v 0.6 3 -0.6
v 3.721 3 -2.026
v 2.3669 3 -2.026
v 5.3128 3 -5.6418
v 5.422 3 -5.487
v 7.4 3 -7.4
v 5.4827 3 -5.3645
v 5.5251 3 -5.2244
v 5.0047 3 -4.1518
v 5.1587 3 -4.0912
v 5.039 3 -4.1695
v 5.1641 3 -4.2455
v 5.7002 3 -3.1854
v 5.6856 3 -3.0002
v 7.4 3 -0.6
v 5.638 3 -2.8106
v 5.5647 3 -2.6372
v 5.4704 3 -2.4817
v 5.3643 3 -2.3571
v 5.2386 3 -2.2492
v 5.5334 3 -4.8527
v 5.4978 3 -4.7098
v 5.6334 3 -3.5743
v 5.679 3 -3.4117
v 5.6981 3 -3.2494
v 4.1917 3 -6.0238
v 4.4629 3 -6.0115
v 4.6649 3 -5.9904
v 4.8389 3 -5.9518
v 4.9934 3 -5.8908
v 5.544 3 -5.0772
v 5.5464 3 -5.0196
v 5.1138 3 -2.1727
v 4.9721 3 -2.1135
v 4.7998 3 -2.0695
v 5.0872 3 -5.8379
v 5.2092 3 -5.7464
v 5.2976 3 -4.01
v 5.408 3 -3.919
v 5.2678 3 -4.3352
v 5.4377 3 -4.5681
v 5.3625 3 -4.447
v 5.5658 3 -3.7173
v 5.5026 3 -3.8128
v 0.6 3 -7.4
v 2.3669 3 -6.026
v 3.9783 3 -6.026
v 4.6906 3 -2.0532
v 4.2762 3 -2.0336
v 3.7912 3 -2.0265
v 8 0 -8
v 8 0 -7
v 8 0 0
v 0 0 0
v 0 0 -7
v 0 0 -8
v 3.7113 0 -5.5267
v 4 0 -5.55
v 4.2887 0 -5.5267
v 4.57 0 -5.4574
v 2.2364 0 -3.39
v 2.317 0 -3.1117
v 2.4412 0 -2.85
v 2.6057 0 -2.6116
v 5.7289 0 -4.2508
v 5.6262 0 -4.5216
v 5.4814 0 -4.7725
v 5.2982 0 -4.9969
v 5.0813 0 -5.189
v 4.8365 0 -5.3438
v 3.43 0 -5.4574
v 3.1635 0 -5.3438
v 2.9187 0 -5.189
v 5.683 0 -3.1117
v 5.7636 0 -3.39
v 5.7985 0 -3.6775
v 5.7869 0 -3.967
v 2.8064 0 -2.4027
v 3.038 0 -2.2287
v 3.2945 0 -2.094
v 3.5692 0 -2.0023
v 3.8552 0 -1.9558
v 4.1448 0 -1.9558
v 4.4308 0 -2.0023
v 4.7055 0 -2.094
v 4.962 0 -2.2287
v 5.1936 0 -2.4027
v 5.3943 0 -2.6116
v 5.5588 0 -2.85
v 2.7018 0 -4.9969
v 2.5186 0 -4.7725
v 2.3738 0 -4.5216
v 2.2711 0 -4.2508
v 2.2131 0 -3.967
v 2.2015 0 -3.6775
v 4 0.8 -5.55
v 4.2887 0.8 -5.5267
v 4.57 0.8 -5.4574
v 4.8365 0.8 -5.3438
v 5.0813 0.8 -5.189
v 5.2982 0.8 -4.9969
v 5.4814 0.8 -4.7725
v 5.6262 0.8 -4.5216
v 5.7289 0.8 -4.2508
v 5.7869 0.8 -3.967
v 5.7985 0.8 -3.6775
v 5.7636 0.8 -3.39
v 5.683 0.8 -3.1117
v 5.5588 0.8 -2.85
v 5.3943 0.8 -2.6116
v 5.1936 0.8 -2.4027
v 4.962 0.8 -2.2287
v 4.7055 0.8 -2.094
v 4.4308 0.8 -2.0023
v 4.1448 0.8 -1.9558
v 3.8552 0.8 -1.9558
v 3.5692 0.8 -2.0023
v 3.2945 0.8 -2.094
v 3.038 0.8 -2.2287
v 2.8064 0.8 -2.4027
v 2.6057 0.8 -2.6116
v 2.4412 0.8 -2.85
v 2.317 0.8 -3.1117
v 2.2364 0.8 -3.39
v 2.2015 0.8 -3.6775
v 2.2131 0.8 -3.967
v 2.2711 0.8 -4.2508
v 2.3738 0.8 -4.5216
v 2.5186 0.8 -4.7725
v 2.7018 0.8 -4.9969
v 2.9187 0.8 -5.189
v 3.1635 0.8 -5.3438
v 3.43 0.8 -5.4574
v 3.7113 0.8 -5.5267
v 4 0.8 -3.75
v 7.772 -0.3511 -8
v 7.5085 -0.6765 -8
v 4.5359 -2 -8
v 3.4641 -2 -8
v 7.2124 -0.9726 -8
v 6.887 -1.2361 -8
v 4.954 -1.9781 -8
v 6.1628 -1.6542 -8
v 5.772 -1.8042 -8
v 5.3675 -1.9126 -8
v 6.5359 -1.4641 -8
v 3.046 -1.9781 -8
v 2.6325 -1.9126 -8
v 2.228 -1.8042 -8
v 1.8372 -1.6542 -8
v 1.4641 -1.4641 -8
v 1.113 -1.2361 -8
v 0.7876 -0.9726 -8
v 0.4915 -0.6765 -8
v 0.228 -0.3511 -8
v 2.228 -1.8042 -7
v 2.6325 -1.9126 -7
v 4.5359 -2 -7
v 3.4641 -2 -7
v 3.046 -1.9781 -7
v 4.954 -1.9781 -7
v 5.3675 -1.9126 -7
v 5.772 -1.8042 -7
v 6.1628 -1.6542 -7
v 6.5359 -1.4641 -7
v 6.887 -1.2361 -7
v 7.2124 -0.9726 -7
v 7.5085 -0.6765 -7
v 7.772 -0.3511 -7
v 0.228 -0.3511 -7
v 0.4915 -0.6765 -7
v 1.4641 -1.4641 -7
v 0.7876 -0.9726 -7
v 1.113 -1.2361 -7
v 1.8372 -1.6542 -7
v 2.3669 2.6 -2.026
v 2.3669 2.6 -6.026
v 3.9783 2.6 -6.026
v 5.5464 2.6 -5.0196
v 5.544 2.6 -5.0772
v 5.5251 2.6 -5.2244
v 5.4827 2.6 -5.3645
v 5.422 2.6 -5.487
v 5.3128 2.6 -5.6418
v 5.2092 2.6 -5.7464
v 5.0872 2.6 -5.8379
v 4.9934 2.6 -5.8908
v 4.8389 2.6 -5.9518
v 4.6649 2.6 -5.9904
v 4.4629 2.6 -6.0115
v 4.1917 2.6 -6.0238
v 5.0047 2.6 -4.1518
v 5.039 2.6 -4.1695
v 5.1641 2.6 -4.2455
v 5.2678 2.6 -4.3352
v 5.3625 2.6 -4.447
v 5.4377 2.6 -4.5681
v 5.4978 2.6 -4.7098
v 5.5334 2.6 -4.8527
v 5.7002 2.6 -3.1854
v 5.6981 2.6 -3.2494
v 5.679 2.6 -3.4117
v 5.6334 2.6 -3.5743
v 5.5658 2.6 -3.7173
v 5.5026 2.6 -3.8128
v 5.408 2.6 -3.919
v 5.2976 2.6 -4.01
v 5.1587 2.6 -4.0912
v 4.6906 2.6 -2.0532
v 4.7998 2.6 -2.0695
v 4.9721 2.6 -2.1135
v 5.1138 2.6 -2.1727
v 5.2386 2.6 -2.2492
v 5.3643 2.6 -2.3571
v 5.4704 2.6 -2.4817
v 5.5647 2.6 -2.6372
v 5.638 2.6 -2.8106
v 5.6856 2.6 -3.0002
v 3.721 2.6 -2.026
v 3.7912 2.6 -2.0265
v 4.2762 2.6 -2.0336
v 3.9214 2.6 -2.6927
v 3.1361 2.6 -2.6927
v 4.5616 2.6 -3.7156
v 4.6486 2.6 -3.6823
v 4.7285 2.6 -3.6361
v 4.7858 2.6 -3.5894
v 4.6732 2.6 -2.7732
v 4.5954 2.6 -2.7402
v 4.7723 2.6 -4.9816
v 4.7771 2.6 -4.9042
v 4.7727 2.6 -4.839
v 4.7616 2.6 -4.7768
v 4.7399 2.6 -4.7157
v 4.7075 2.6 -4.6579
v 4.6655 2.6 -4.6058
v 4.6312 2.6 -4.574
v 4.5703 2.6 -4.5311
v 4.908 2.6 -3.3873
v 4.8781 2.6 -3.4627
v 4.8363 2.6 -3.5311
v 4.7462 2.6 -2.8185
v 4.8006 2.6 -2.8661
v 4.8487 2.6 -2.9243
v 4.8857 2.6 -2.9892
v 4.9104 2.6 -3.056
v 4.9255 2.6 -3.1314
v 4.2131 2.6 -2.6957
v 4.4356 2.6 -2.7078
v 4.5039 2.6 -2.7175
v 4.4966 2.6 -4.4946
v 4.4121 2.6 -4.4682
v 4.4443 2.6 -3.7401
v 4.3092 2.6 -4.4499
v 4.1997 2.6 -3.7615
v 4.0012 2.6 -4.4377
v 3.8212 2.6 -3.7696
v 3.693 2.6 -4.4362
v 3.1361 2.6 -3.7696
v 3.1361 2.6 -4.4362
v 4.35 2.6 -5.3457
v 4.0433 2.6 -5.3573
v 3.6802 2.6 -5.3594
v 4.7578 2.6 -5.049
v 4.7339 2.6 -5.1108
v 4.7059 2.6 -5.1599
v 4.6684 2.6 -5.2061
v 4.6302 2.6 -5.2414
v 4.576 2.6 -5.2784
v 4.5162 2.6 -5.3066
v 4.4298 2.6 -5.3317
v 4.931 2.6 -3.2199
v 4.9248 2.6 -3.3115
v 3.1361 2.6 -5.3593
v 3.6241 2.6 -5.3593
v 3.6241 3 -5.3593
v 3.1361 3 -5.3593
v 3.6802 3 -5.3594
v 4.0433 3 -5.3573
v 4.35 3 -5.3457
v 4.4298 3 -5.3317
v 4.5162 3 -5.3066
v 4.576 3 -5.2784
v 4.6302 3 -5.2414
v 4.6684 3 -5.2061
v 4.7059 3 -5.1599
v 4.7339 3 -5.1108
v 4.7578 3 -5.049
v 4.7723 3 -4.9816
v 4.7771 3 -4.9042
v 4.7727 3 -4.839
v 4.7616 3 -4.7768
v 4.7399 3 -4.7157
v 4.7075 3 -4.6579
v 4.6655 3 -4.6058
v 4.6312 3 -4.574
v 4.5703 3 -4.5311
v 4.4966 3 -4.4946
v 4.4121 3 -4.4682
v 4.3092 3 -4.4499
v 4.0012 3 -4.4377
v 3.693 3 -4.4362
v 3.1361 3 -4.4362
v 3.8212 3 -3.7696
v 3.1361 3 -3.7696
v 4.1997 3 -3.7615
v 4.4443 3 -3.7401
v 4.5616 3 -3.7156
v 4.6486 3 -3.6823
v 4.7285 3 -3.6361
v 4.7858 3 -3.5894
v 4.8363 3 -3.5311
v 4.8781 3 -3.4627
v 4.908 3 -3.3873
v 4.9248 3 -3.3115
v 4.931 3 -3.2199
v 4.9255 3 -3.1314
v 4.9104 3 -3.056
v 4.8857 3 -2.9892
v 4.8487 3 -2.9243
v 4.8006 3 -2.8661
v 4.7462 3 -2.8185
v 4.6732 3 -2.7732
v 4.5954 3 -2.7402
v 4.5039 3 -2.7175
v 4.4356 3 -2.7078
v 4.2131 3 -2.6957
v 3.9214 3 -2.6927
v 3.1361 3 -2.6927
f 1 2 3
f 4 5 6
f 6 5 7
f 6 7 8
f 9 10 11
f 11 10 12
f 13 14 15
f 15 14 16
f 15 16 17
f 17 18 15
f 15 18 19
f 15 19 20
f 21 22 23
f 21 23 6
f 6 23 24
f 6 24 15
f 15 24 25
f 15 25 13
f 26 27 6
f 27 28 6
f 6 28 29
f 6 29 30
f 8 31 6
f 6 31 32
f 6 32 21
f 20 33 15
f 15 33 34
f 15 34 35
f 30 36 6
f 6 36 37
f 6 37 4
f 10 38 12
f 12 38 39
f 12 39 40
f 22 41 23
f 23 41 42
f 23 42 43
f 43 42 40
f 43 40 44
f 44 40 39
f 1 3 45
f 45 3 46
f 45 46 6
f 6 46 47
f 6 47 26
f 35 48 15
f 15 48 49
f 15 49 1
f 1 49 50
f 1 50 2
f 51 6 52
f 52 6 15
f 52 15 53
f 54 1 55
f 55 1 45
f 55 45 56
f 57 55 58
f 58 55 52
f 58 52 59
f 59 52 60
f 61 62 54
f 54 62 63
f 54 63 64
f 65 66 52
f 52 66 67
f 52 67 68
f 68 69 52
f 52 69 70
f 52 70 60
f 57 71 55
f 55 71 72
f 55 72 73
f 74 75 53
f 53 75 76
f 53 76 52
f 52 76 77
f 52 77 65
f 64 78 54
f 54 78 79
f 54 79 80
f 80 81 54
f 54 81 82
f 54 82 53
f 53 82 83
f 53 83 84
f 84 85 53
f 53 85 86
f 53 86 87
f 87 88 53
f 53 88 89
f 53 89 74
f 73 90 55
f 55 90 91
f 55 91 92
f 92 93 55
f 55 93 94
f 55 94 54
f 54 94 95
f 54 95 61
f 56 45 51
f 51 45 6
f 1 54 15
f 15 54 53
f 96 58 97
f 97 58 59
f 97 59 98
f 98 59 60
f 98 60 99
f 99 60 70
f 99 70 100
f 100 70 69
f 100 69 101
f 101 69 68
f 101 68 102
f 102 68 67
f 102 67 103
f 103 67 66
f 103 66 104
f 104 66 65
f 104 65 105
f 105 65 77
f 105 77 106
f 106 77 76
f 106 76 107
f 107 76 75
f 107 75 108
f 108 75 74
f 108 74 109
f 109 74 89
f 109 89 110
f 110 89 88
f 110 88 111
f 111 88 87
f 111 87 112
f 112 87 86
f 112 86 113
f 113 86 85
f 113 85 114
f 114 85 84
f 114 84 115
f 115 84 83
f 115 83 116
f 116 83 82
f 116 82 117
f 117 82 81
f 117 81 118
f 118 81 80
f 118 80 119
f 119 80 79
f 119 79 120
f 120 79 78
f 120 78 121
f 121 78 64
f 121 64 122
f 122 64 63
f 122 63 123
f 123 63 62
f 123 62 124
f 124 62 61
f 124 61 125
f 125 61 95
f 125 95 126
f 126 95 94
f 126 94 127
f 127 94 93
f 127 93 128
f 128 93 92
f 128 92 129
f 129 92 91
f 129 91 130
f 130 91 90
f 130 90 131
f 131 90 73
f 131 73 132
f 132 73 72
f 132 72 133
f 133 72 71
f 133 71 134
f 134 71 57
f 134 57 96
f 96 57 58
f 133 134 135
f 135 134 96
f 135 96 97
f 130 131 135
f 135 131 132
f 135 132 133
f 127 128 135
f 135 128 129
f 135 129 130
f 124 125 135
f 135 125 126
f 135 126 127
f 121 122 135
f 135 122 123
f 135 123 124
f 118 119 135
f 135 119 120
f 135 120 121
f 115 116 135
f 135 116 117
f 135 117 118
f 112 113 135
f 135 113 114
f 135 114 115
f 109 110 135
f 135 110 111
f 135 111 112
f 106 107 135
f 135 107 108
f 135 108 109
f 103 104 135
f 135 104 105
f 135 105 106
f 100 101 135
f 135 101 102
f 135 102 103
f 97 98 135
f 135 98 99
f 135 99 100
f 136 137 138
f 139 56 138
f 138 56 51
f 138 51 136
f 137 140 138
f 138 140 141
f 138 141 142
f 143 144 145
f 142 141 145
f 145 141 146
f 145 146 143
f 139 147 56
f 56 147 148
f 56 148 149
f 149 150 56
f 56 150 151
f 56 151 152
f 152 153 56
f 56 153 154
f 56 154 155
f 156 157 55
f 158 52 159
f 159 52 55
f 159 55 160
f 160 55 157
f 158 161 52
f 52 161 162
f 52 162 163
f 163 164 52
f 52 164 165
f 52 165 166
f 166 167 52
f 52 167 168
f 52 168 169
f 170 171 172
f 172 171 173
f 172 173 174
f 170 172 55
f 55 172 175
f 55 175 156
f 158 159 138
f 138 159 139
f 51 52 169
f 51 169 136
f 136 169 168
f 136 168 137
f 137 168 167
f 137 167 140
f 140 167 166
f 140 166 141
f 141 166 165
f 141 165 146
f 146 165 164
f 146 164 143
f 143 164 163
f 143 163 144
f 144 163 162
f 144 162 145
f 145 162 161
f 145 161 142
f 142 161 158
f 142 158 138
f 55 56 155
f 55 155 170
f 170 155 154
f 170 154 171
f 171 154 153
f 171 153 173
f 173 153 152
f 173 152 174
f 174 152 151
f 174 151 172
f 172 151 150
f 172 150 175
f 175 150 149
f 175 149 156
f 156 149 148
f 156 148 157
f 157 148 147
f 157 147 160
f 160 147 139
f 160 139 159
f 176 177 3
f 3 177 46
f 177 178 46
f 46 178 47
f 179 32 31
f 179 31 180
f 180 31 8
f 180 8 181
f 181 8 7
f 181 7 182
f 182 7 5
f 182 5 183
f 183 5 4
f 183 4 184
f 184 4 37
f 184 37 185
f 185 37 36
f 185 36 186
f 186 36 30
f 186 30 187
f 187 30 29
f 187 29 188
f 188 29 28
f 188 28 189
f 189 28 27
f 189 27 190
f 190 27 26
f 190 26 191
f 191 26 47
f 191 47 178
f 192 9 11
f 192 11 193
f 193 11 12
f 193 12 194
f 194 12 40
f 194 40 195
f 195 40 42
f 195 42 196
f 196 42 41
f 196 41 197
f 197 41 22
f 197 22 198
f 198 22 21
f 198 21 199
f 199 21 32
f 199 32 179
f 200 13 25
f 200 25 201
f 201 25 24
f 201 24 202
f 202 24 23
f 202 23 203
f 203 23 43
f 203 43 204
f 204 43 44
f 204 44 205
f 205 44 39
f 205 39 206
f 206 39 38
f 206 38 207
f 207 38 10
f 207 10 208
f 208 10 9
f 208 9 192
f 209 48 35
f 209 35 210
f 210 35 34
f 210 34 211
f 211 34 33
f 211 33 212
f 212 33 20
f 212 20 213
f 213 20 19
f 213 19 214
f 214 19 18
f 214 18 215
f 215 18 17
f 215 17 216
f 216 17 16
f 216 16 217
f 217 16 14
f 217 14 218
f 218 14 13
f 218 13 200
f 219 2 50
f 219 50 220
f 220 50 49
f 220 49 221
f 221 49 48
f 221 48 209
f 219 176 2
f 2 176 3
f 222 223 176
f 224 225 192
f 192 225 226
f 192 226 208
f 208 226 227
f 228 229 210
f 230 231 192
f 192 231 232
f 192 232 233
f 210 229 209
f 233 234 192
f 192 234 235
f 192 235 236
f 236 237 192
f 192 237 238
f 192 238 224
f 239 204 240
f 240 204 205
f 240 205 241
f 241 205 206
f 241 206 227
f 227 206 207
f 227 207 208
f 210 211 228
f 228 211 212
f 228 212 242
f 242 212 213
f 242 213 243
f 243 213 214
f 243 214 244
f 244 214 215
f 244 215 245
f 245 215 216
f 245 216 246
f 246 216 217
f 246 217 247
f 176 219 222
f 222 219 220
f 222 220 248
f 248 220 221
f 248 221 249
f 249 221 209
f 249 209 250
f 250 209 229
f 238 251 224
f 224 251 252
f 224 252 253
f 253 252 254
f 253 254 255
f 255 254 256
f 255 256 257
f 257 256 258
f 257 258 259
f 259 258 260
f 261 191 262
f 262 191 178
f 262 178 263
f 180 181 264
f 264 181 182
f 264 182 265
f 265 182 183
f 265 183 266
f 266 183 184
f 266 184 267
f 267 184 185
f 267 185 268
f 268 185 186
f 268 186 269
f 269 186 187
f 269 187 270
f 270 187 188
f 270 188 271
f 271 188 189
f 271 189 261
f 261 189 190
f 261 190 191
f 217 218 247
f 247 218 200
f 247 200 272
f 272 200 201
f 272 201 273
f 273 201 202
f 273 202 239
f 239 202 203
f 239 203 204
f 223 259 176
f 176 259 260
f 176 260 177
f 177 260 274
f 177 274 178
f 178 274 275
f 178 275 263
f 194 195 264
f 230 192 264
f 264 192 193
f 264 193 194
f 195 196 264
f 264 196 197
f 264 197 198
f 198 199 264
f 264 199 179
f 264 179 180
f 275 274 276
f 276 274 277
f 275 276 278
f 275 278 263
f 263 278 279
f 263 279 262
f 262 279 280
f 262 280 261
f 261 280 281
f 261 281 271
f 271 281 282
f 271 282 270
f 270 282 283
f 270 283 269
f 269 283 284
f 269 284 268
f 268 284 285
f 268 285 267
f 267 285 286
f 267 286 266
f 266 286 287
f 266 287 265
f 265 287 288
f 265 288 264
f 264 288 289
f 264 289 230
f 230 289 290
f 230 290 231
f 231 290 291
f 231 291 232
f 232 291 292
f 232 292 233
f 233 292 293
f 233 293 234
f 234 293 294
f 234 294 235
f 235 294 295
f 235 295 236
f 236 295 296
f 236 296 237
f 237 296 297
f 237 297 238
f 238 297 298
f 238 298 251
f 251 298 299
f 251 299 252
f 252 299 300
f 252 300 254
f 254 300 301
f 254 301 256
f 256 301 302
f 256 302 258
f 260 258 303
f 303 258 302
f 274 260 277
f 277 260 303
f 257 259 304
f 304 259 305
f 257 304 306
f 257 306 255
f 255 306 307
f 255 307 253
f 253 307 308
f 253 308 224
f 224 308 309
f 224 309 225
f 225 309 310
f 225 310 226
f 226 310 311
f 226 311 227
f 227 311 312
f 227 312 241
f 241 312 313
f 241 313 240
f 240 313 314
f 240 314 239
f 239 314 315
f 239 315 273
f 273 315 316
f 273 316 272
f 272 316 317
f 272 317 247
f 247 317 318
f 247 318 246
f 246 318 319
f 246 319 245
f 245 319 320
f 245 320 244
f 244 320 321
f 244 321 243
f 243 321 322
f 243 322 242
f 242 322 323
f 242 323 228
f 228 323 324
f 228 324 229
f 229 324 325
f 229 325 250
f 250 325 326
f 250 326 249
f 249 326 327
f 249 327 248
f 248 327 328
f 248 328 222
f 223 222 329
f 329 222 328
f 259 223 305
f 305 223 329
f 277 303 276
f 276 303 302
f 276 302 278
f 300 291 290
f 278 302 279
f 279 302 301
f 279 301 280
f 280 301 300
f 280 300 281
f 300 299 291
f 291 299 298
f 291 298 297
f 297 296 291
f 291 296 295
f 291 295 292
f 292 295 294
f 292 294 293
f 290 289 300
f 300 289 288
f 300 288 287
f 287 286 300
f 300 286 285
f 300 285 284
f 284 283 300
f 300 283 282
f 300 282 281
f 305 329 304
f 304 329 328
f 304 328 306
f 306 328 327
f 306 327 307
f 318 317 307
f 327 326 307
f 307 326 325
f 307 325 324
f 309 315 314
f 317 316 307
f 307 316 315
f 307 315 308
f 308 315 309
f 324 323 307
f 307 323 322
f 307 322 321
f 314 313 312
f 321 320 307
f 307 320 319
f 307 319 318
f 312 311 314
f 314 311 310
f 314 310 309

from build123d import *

# Parameters (mm, degrees)
SKETCH1_W               = 8
SKETCH1_H               = 8
BOSS_EXTRUDE1_DEPTH     = 3
CUT_EXTRUDE1_DEPTH      = 12.704699911
CUT_EXTRUDE1_DEPTH_BACK = 12.704699911
CUT_EXTRUDE2_DEPTH      = 11
SKETCH4_R               = 1.8
CUT_EXTRUDE3_DEPTH      = 0.8
SKETCH5_W               = 8
SKETCH5_H               = 1
BOSS_EXTRUDE2_DEPTH     = 2
FILLET1_R               = 4
CUT_EXTRUDE4_DEPTH      = 0.4


with BuildPart() as part:
    # Sketch1 → Boss-Extrude1 (new body)
    with BuildSketch(Plane(origin=(0, 0, 0), x_dir=(1, 0, 0), z_dir=(0, 1, 0))):
        with Locations((4, 4)):
            Rectangle(SKETCH1_W, SKETCH1_H)
    extrude(amount=BOSS_EXTRUDE1_DEPTH)

    # Sketch2 → Cut-Extrude1 (cut, two sides: drawn at the far end of the back side and taken through both)
    with BuildSketch(Plane.XY.offset(-CUT_EXTRUDE1_DEPTH_BACK)):
        Polygon((0, 0), (0.6, 3), (0, 3), align=None)
        Polygon((8, 0), (7.4, 3), (8, 3), align=None)
    extrude(amount=CUT_EXTRUDE1_DEPTH + CUT_EXTRUDE1_DEPTH_BACK, mode=Mode.SUBTRACT)

    # Sketch3 → Cut-Extrude2 (cut)
    with BuildSketch(Plane(origin=(0, 0, 0), x_dir=(0, 0, -1), z_dir=(1, 0, 0))):
        Polygon((0, 0), (0.6, 3), (0, 3), align=None)
        Polygon((8, 3), (7.4, 3), (8, 0), align=None)
    extrude(amount=CUT_EXTRUDE2_DEPTH, mode=Mode.SUBTRACT)

    # Sketch4 → Cut-Extrude3 (cut)
    with BuildSketch(Plane.XZ):
        with Locations(Location((4, -3.75, 0), (0, 0, 270))):
            Circle(SKETCH4_R)
    extrude(amount=-CUT_EXTRUDE3_DEPTH, mode=Mode.SUBTRACT)

    # Sketch5 → Boss-Extrude2 (add)
    with BuildSketch(Plane.XZ):
        with Locations((4, -7.5)):
            Rectangle(SKETCH5_W, SKETCH5_H)
    extrude(amount=BOSS_EXTRUDE2_DEPTH)

    # Fillet1
    # the kernel refuses this fillet: 4 mm, written as the material it takes off along each edge
    with BuildSketch(Plane(origin=(8, -2, -16.660254038), x_dir=(0, 1, 0), z_dir=(0, 0, 1)), Plane(origin=(0, -2, 1.660254038), x_dir=(0, 1, 0), z_dir=(0, 0, -1))) as fillet1_piece_1:
        with BuildLine():
            CenterArc((4, 3.464101615), FILLET1_R, 180, 60)
            Line((0, 3.464101615), (-0.08, 3.464101615))
            Line((-0.08, 3.464101615), (-0.08, 0))
            Line((-0.08, 0), (0, -0.08))
            ThreePointArc((0, -0.08), (1, -0.08), (1.96, -0.069282032))
            Line((1.96, -0.069282032), (2, 0))
        make_face()
    extrude(amount=18.320508076, mode=Mode.SUBTRACT)

    # Sketch6 → Cut-Extrude4 (cut)
    with BuildSketch(Plane(origin=(0, 3, 0), x_dir=(1, 0, 0), z_dir=(0, 1, 0))):
        with BuildLine():
            Line((2.366875023, 6.025988971), (3.978253228, 6.025988971))
            add(Edge.make_bspline(
                [(3.978253228, 6.025988971), (4.016981522, 6.025758539), (4.091770291, 6.025313549), (4.200234262, 6.02407341), (4.300910244, 6.020431423), (4.393955008, 6.01730407), (4.479059098, 6.009990491), (4.556891378, 6.004244483), (4.627206795, 5.996339471), (4.710040188, 5.983546816), (4.806360793, 5.963648743), (4.915152558, 5.926842691), (5.018276483, 5.880857129), (5.114182519, 5.822393524), (5.203189243, 5.754016663), (5.28597738, 5.676271174), (5.358728101, 5.58601543), (5.424238976, 5.487508268), (5.479534837, 5.380666952), (5.517612886, 5.26572697), (5.541913225, 5.144795761), (5.544858568, 5.061898711), (5.546362202, 5.019578715)],
                knots=[0, 0, 0, 0, 1.096610875, 2.117681168, 3.071055591, 3.949137991, 4.753059115, 5.489127199, 6.15892391, 6.75575099, 7.862330316, 8.938514814, 10.001276227, 11.05313779, 12.110449801, 13.174958802, 14.260456508, 15.384725817, 16.521138801, 17.654729897, 18.802709851, 20, 20, 20, 20], degree=3))
            add(Edge.make_bspline(
                [(5.546362202, 5.019578715), (5.544802721, 4.973493311), (5.541727769, 4.882623117), (5.513106772, 4.749371009), (5.467516851, 4.621879661), (5.40315043, 4.502217288), (5.324314646, 4.392405777), (5.231065087, 4.295977947), (5.12477188, 4.213520097), (5.044958184, 4.17248881), (5.004695536, 4.151790253)],
                knots=[0, 0, 0, 0, 1.023065178, 2.01725758, 3.014298905, 4.023406433, 5.026736079, 6.009055718, 6.99565244, 8, 8, 8, 8], degree=3))
            add(Edge.make_bspline(
                [(5.004695536, 4.151790253), (5.0318132, 4.142553707), (5.085431798, 4.12429068), (5.162178571, 4.090754541), (5.234086142, 4.051862796), (5.301118401, 4.008841827), (5.363784101, 3.961377137), (5.420252395, 3.907894911), (5.473763466, 3.851437899), (5.520742036, 3.789172127), (5.563264851, 3.724075672), (5.599360366, 3.65512964), (5.630616076, 3.583992364), (5.656755805, 3.509943884), (5.675388869, 3.432487562), (5.69031884, 3.352599145), (5.697956597, 3.269724954), (5.699451608, 3.213768347), (5.700208356, 3.185444099)],
                knots=[0, 0, 0, 0, 1.072651974, 2.1209089, 3.132484228, 4.131466326, 5.101889999, 6.071643115, 7.041396231, 8.011819904, 8.988565287, 9.95070344, 10.922775742, 11.897213062, 12.887138018, 13.903598663, 14.938838629, 16, 16, 16, 16], degree=3))
            add(Edge.make_bspline(
                [(5.700208356, 3.185444099), (5.698598844, 3.140212221), (5.695387249, 3.049957264), (5.671387404, 2.915316113), (5.630853991, 2.783046233), (5.575963383, 2.654005704), (5.507783193, 2.532330941), (5.427626978, 2.4212421), (5.334105775, 2.324584109), (5.230539132, 2.239414342), (5.113835126, 2.16890592), (4.984093466, 2.114745557), (4.842134035, 2.073828468), (4.742124288, 2.060236169), (4.690592972, 2.053232561)],
                knots=[0, 0, 0, 0, 0.975059807, 1.945618526, 2.93861228, 3.952760547, 4.963632603, 5.940527786, 6.897802811, 7.855787948, 8.824773195, 9.82606706, 10.879852914, 12, 12, 12, 12], degree=3))
            add(Edge.make_bspline(
                [(4.690592972, 2.053232561), (4.670833027, 2.051565703), (4.625472552, 2.047739302), (4.548543711, 2.042982046), (4.453955886, 2.039386091), (4.341791209, 2.035134329), (4.211704387, 2.032064432), (4.063991072, 2.029968108), (3.898399223, 2.027247493), (3.782207382, 2.026423), (3.72104169, 2.025988971)],
                knots=[0, 0, 0, 0, 0.490565993, 1.126131979, 1.906526787, 2.832178623, 3.902933831, 5.125497984, 6.486805064, 8, 8, 8, 8], degree=3))
            Line((3.72104169, 2.025988971), (2.366875023, 2.025988971))
            Line((2.366875023, 2.025988971), (2.366875023, 6.025988971))
        make_face()
        with BuildLine():
            Line((3.136105792, 5.359322304), (3.136105792, 4.436245381))
            Line((3.136105792, 4.436245381), (3.692996818, 4.436245381))
            add(Edge.make_bspline(
                [(3.692996818, 4.436245381), (3.732259986, 4.43615888), (3.807047978, 4.435994114), (3.91334909, 4.43709824), (4.008173732, 4.437613694), (4.091249283, 4.439126475), (4.162558686, 4.441623123), (4.221845003, 4.444116229), (4.269450826, 4.446003799), (4.297170592, 4.448699163), (4.309182715, 4.449867176)],
                knots=[0, 0, 0, 0, 1.528479216, 2.911428072, 4.138414629, 5.21998762, 6.145918986, 6.915989543, 7.530253335, 8, 8, 8, 8], degree=3))
            add(Edge.make_bspline(
                [(4.309182715, 4.449867176), (4.3438238, 4.455079871), (4.41040184, 4.465098351), (4.503567155, 4.494454854), (4.584375726, 4.536913614), (4.653724553, 4.58976356), (4.708773054, 4.654604252), (4.749170144, 4.72919452), (4.772805412, 4.813847791), (4.775653451, 4.873327339), (4.777131433, 4.904194099)],
                knots=[0, 0, 0, 0, 1.162079002, 2.233444551, 3.225172046, 4.179556897, 5.110707885, 6.027301426, 6.976273101, 8, 8, 8, 8], degree=3))
            add(Edge.make_bspline(
                [(4.777131433, 4.904194099), (4.776203651, 4.934000177), (4.774422539, 4.991220438), (4.752297006, 5.072236392), (4.719032932, 5.144995211), (4.670409719, 5.207709385), (4.609395094, 5.260672186), (4.534716376, 5.302043411), (4.446732173, 5.330510733), (4.38335661, 5.340467498), (4.3500481, 5.345700509)],
                knots=[0, 0, 0, 0, 1.044241546, 2.004684189, 2.928111627, 3.838334562, 4.769594837, 5.748424953, 6.81663206, 8, 8, 8, 8], degree=3))
            add(Edge.make_bspline(
                [(4.3500481, 5.345700509), (4.336967148, 5.34687206), (4.306041436, 5.349641817), (4.252292165, 5.35144236), (4.183926257, 5.353976507), (4.100595234, 5.356449705), (4.002296842, 5.357959731), (3.889310645, 5.358468661), (3.761641688, 5.359577608), (3.671629596, 5.359410545), (3.624086561, 5.359322304)],
                knots=[0, 0, 0, 0, 0.433943041, 1.02591908, 1.776648879, 2.694999143, 3.780816848, 5.02540149, 6.428861738, 8, 8, 8, 8], degree=3))
            Line((3.624086561, 5.359322304), (3.136105792, 5.359322304))
        make_face(mode=Mode.SUBTRACT)
        with BuildLine():
            Line((3.136105792, 3.769578715), (3.136105792, 2.692655638))
            Line((3.136105792, 2.692655638), (3.921362202, 2.692655638))
            add(Edge.make_bspline(
                [(3.921362202, 2.692655638), (3.957955896, 2.692474114), (4.027408125, 2.692129595), (4.126486109, 2.694437139), (4.214933064, 2.69519802), (4.293162962, 2.698994102), (4.360764719, 2.701865798), (4.418016495, 2.705445849), (4.464471269, 2.711139165), (4.491885355, 2.715559172), (4.503894254, 2.717495381)],
                knots=[0, 0, 0, 0, 1.504773752, 2.85595359, 4.075347731, 5.141676974, 6.076328919, 6.858106537, 7.499786952, 8, 8, 8, 8], degree=3))
            add(Edge.make_bspline(
                [(4.503894254, 2.717495381), (4.534390702, 2.723929926), (4.593642924, 2.736431746), (4.675765739, 2.772305806), (4.749780788, 2.817800627), (4.813883543, 2.876271003), (4.866572685, 2.946316906), (4.904617992, 3.02809262), (4.927561873, 3.120636015), (4.929805566, 3.185839411), (4.930977587, 3.219899227)],
                knots=[0, 0, 0, 0, 1.031056579, 2.003262591, 2.954260215, 3.900917722, 4.862741126, 5.841340256, 6.872396835, 8, 8, 8, 8], degree=3))
            add(Edge.make_bspline(
                [(4.930977587, 3.219899227), (4.930031736, 3.249108452), (4.928190747, 3.305960799), (4.910169932, 3.38739087), (4.88101832, 3.461844609), (4.840421058, 3.528813936), (4.789699747, 3.589139928), (4.726998003, 3.639624345), (4.654607383, 3.681685756), (4.585597801, 3.709395341), (4.520158829, 3.72717269), (4.457743787, 3.73883498), (4.382520906, 3.748066566), (4.294854864, 3.755875466), (4.194389919, 3.762120128), (4.081396073, 3.767043008), (3.95555801, 3.769103428), (3.867409493, 3.769415255), (3.821201946, 3.769578715)],
                knots=[0, 0, 0, 0, 0.992165387, 1.931134082, 2.820086661, 3.700270762, 4.583075858, 5.486803518, 6.423132184, 7.421722103, 8.005700193, 8.727213115, 9.57900282, 10.582332745, 11.720121093, 13.002085041, 14.428489784, 16, 16, 16, 16], degree=3))
            Line((3.821201946, 3.769578715), (3.136105792, 3.769578715))
        make_face(mode=Mode.SUBTRACT)
    extrude(amount=-CUT_EXTRUDE4_DEPTH, mode=Mode.SUBTRACT)


solid = part.part
